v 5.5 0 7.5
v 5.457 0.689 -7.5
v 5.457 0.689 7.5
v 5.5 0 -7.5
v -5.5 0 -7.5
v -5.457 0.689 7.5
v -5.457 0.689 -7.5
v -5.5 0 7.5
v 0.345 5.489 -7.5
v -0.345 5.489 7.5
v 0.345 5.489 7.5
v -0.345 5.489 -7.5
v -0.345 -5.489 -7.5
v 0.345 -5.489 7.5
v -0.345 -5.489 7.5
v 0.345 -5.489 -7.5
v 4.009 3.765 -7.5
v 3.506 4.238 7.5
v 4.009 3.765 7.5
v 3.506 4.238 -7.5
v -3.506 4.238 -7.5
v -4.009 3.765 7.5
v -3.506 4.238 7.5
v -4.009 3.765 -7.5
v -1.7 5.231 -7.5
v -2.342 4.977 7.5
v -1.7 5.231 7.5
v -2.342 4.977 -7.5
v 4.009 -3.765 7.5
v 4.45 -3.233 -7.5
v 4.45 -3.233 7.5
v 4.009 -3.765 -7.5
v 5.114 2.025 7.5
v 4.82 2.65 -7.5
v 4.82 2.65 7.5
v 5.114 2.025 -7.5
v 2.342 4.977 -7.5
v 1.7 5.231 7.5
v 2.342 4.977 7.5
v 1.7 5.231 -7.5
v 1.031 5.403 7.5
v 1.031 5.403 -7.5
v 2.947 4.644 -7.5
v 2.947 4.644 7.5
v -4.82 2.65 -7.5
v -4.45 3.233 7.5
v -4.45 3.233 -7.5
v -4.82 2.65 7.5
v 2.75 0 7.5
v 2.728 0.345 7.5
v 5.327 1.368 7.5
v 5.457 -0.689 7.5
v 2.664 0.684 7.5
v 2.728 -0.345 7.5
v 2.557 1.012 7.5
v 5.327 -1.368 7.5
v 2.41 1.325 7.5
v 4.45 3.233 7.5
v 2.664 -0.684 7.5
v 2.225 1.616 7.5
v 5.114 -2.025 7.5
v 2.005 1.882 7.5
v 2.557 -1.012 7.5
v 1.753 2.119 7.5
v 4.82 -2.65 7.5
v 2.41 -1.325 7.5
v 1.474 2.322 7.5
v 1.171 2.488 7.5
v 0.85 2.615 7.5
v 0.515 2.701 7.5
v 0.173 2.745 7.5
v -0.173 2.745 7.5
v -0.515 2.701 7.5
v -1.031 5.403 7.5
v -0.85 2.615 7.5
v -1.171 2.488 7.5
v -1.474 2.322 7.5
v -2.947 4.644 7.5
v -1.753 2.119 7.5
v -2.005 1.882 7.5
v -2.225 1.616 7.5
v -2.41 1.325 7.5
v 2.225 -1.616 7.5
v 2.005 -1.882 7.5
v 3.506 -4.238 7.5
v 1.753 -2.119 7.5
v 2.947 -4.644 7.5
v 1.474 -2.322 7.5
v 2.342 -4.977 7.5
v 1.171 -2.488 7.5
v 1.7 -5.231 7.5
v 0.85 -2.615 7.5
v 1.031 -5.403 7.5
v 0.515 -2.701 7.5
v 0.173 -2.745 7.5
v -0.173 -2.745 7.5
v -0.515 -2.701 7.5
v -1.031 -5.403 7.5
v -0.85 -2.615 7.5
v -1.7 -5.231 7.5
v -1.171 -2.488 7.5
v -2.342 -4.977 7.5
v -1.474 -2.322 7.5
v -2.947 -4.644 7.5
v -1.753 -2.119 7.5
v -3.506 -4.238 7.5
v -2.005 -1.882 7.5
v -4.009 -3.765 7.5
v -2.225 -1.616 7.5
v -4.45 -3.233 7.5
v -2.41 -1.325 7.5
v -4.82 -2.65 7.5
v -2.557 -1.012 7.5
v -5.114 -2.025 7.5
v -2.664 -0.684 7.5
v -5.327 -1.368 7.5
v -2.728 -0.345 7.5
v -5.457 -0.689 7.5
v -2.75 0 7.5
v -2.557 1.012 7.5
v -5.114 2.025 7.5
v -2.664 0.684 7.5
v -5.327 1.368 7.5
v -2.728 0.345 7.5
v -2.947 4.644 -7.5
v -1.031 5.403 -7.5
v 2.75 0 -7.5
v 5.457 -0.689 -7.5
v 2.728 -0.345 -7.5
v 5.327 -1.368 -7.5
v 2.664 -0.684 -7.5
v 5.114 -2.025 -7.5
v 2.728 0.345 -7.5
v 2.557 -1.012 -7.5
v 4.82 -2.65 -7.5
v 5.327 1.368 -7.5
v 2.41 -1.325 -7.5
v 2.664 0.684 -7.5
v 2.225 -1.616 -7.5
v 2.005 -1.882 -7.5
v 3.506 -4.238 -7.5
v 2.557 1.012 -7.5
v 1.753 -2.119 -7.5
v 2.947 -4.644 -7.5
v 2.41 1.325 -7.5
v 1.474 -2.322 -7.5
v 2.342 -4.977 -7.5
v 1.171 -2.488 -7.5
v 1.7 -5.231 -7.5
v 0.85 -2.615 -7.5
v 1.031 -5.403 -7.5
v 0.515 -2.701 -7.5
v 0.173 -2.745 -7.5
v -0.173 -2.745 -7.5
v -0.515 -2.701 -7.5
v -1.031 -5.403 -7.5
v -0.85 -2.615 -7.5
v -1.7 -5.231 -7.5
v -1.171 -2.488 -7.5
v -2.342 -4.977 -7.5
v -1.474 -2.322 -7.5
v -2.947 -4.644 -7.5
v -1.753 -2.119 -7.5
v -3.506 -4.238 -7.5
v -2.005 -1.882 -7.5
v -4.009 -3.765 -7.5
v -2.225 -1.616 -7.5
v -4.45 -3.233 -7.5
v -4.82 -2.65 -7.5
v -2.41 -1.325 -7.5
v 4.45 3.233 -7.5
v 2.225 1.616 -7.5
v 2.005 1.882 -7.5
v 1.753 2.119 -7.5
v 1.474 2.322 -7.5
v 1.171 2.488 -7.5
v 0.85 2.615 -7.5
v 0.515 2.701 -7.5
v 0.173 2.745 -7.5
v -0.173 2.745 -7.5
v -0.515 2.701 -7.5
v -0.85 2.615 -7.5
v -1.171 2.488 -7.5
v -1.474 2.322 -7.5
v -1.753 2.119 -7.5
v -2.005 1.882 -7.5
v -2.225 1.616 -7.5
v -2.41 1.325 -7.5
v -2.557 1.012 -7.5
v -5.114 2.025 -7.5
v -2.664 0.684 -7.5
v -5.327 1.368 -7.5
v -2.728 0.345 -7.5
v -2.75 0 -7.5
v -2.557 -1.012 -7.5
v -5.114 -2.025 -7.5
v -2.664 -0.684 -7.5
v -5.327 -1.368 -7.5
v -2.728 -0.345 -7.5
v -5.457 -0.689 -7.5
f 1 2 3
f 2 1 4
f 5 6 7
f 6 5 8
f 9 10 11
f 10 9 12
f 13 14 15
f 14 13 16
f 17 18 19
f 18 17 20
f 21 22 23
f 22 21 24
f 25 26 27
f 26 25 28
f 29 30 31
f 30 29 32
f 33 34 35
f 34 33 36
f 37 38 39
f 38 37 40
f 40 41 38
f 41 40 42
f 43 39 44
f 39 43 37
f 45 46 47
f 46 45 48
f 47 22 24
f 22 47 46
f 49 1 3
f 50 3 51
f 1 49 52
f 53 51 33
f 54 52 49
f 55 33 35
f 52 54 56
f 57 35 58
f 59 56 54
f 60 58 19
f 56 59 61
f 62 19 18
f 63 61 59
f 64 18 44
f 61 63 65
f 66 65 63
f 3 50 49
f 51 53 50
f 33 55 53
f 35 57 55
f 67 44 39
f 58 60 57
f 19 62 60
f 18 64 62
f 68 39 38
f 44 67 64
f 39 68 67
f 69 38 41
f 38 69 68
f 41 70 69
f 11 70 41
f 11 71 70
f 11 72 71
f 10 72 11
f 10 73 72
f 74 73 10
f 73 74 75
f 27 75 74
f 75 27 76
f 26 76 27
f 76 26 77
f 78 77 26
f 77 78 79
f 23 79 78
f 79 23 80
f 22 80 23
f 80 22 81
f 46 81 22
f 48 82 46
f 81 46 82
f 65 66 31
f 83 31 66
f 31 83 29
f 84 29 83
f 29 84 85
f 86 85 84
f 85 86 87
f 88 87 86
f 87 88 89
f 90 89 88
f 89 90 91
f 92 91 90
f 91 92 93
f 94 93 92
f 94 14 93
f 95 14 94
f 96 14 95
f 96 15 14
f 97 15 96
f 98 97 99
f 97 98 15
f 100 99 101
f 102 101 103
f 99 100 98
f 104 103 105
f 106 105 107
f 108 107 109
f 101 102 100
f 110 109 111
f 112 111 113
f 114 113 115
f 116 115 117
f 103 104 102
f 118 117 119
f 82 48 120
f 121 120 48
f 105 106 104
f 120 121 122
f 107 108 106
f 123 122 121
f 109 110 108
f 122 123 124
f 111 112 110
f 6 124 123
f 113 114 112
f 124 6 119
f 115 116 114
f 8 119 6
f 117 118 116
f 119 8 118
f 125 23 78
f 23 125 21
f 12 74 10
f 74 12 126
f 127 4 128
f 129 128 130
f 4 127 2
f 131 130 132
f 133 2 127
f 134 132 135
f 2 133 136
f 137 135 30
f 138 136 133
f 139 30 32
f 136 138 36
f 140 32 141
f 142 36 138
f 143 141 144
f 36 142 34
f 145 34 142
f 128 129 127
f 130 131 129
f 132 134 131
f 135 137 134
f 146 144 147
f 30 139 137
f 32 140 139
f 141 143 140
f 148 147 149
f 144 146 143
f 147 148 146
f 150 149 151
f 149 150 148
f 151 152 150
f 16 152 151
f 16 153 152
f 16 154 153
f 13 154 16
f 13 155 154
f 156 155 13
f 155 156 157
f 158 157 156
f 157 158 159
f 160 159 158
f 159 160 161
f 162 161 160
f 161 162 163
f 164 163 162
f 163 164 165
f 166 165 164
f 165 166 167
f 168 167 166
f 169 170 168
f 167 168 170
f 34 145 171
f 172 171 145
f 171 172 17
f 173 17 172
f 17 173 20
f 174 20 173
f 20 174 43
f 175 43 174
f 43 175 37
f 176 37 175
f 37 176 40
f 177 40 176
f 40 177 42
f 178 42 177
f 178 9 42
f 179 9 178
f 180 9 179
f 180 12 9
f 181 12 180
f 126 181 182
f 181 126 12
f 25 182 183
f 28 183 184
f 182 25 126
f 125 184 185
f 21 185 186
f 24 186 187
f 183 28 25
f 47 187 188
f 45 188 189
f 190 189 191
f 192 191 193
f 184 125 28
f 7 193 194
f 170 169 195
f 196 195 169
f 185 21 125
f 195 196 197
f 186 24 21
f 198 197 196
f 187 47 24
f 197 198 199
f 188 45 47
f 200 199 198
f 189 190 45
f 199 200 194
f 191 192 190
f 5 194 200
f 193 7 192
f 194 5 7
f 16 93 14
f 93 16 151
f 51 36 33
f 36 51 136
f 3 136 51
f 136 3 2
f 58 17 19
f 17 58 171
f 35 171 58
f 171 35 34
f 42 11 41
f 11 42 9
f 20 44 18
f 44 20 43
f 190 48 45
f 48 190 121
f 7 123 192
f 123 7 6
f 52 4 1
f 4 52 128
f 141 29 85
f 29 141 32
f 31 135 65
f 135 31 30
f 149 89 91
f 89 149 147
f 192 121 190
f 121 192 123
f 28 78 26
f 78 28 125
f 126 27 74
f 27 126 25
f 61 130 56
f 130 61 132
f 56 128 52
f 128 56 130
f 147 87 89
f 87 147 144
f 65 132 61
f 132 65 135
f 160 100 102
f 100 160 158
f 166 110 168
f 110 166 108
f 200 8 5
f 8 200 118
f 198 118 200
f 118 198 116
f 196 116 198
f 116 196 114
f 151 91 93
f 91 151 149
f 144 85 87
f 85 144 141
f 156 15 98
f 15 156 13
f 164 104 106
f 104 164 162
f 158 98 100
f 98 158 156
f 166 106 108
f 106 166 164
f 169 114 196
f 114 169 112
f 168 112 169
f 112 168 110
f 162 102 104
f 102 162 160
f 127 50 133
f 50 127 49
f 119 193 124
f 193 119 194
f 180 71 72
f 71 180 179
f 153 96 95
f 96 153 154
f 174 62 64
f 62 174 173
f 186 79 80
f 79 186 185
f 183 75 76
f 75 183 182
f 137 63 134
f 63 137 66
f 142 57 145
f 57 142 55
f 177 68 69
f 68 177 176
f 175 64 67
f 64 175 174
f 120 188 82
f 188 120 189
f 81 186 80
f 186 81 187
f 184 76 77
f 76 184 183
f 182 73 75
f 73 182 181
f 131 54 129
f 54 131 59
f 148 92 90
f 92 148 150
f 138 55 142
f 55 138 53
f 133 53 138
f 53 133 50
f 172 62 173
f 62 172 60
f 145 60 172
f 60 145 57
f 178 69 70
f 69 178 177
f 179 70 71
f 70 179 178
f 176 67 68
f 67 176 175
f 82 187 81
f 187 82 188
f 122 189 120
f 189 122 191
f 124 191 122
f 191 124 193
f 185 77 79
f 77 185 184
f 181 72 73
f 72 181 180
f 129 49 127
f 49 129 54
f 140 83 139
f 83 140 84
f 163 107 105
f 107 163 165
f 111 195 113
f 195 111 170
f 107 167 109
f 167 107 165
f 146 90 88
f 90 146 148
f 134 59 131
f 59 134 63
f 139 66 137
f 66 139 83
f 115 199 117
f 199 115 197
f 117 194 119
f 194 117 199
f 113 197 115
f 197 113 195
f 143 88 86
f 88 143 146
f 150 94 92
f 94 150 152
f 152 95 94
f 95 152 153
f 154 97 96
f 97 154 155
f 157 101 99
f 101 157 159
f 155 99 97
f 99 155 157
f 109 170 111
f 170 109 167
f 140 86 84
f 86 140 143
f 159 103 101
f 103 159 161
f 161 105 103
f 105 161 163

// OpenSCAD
$fn = 50;


difference() {
	union() {
		translate(v = [0, 0, -7.5000000000]) {
			cylinder(h = 15, r = 5.5000000000);
		}
	}
	union() {
		translate(v = [0, 0, -100.0000000000]) {
			cylinder(h = 200, r = 2.7500000000);
		}
	}
}
